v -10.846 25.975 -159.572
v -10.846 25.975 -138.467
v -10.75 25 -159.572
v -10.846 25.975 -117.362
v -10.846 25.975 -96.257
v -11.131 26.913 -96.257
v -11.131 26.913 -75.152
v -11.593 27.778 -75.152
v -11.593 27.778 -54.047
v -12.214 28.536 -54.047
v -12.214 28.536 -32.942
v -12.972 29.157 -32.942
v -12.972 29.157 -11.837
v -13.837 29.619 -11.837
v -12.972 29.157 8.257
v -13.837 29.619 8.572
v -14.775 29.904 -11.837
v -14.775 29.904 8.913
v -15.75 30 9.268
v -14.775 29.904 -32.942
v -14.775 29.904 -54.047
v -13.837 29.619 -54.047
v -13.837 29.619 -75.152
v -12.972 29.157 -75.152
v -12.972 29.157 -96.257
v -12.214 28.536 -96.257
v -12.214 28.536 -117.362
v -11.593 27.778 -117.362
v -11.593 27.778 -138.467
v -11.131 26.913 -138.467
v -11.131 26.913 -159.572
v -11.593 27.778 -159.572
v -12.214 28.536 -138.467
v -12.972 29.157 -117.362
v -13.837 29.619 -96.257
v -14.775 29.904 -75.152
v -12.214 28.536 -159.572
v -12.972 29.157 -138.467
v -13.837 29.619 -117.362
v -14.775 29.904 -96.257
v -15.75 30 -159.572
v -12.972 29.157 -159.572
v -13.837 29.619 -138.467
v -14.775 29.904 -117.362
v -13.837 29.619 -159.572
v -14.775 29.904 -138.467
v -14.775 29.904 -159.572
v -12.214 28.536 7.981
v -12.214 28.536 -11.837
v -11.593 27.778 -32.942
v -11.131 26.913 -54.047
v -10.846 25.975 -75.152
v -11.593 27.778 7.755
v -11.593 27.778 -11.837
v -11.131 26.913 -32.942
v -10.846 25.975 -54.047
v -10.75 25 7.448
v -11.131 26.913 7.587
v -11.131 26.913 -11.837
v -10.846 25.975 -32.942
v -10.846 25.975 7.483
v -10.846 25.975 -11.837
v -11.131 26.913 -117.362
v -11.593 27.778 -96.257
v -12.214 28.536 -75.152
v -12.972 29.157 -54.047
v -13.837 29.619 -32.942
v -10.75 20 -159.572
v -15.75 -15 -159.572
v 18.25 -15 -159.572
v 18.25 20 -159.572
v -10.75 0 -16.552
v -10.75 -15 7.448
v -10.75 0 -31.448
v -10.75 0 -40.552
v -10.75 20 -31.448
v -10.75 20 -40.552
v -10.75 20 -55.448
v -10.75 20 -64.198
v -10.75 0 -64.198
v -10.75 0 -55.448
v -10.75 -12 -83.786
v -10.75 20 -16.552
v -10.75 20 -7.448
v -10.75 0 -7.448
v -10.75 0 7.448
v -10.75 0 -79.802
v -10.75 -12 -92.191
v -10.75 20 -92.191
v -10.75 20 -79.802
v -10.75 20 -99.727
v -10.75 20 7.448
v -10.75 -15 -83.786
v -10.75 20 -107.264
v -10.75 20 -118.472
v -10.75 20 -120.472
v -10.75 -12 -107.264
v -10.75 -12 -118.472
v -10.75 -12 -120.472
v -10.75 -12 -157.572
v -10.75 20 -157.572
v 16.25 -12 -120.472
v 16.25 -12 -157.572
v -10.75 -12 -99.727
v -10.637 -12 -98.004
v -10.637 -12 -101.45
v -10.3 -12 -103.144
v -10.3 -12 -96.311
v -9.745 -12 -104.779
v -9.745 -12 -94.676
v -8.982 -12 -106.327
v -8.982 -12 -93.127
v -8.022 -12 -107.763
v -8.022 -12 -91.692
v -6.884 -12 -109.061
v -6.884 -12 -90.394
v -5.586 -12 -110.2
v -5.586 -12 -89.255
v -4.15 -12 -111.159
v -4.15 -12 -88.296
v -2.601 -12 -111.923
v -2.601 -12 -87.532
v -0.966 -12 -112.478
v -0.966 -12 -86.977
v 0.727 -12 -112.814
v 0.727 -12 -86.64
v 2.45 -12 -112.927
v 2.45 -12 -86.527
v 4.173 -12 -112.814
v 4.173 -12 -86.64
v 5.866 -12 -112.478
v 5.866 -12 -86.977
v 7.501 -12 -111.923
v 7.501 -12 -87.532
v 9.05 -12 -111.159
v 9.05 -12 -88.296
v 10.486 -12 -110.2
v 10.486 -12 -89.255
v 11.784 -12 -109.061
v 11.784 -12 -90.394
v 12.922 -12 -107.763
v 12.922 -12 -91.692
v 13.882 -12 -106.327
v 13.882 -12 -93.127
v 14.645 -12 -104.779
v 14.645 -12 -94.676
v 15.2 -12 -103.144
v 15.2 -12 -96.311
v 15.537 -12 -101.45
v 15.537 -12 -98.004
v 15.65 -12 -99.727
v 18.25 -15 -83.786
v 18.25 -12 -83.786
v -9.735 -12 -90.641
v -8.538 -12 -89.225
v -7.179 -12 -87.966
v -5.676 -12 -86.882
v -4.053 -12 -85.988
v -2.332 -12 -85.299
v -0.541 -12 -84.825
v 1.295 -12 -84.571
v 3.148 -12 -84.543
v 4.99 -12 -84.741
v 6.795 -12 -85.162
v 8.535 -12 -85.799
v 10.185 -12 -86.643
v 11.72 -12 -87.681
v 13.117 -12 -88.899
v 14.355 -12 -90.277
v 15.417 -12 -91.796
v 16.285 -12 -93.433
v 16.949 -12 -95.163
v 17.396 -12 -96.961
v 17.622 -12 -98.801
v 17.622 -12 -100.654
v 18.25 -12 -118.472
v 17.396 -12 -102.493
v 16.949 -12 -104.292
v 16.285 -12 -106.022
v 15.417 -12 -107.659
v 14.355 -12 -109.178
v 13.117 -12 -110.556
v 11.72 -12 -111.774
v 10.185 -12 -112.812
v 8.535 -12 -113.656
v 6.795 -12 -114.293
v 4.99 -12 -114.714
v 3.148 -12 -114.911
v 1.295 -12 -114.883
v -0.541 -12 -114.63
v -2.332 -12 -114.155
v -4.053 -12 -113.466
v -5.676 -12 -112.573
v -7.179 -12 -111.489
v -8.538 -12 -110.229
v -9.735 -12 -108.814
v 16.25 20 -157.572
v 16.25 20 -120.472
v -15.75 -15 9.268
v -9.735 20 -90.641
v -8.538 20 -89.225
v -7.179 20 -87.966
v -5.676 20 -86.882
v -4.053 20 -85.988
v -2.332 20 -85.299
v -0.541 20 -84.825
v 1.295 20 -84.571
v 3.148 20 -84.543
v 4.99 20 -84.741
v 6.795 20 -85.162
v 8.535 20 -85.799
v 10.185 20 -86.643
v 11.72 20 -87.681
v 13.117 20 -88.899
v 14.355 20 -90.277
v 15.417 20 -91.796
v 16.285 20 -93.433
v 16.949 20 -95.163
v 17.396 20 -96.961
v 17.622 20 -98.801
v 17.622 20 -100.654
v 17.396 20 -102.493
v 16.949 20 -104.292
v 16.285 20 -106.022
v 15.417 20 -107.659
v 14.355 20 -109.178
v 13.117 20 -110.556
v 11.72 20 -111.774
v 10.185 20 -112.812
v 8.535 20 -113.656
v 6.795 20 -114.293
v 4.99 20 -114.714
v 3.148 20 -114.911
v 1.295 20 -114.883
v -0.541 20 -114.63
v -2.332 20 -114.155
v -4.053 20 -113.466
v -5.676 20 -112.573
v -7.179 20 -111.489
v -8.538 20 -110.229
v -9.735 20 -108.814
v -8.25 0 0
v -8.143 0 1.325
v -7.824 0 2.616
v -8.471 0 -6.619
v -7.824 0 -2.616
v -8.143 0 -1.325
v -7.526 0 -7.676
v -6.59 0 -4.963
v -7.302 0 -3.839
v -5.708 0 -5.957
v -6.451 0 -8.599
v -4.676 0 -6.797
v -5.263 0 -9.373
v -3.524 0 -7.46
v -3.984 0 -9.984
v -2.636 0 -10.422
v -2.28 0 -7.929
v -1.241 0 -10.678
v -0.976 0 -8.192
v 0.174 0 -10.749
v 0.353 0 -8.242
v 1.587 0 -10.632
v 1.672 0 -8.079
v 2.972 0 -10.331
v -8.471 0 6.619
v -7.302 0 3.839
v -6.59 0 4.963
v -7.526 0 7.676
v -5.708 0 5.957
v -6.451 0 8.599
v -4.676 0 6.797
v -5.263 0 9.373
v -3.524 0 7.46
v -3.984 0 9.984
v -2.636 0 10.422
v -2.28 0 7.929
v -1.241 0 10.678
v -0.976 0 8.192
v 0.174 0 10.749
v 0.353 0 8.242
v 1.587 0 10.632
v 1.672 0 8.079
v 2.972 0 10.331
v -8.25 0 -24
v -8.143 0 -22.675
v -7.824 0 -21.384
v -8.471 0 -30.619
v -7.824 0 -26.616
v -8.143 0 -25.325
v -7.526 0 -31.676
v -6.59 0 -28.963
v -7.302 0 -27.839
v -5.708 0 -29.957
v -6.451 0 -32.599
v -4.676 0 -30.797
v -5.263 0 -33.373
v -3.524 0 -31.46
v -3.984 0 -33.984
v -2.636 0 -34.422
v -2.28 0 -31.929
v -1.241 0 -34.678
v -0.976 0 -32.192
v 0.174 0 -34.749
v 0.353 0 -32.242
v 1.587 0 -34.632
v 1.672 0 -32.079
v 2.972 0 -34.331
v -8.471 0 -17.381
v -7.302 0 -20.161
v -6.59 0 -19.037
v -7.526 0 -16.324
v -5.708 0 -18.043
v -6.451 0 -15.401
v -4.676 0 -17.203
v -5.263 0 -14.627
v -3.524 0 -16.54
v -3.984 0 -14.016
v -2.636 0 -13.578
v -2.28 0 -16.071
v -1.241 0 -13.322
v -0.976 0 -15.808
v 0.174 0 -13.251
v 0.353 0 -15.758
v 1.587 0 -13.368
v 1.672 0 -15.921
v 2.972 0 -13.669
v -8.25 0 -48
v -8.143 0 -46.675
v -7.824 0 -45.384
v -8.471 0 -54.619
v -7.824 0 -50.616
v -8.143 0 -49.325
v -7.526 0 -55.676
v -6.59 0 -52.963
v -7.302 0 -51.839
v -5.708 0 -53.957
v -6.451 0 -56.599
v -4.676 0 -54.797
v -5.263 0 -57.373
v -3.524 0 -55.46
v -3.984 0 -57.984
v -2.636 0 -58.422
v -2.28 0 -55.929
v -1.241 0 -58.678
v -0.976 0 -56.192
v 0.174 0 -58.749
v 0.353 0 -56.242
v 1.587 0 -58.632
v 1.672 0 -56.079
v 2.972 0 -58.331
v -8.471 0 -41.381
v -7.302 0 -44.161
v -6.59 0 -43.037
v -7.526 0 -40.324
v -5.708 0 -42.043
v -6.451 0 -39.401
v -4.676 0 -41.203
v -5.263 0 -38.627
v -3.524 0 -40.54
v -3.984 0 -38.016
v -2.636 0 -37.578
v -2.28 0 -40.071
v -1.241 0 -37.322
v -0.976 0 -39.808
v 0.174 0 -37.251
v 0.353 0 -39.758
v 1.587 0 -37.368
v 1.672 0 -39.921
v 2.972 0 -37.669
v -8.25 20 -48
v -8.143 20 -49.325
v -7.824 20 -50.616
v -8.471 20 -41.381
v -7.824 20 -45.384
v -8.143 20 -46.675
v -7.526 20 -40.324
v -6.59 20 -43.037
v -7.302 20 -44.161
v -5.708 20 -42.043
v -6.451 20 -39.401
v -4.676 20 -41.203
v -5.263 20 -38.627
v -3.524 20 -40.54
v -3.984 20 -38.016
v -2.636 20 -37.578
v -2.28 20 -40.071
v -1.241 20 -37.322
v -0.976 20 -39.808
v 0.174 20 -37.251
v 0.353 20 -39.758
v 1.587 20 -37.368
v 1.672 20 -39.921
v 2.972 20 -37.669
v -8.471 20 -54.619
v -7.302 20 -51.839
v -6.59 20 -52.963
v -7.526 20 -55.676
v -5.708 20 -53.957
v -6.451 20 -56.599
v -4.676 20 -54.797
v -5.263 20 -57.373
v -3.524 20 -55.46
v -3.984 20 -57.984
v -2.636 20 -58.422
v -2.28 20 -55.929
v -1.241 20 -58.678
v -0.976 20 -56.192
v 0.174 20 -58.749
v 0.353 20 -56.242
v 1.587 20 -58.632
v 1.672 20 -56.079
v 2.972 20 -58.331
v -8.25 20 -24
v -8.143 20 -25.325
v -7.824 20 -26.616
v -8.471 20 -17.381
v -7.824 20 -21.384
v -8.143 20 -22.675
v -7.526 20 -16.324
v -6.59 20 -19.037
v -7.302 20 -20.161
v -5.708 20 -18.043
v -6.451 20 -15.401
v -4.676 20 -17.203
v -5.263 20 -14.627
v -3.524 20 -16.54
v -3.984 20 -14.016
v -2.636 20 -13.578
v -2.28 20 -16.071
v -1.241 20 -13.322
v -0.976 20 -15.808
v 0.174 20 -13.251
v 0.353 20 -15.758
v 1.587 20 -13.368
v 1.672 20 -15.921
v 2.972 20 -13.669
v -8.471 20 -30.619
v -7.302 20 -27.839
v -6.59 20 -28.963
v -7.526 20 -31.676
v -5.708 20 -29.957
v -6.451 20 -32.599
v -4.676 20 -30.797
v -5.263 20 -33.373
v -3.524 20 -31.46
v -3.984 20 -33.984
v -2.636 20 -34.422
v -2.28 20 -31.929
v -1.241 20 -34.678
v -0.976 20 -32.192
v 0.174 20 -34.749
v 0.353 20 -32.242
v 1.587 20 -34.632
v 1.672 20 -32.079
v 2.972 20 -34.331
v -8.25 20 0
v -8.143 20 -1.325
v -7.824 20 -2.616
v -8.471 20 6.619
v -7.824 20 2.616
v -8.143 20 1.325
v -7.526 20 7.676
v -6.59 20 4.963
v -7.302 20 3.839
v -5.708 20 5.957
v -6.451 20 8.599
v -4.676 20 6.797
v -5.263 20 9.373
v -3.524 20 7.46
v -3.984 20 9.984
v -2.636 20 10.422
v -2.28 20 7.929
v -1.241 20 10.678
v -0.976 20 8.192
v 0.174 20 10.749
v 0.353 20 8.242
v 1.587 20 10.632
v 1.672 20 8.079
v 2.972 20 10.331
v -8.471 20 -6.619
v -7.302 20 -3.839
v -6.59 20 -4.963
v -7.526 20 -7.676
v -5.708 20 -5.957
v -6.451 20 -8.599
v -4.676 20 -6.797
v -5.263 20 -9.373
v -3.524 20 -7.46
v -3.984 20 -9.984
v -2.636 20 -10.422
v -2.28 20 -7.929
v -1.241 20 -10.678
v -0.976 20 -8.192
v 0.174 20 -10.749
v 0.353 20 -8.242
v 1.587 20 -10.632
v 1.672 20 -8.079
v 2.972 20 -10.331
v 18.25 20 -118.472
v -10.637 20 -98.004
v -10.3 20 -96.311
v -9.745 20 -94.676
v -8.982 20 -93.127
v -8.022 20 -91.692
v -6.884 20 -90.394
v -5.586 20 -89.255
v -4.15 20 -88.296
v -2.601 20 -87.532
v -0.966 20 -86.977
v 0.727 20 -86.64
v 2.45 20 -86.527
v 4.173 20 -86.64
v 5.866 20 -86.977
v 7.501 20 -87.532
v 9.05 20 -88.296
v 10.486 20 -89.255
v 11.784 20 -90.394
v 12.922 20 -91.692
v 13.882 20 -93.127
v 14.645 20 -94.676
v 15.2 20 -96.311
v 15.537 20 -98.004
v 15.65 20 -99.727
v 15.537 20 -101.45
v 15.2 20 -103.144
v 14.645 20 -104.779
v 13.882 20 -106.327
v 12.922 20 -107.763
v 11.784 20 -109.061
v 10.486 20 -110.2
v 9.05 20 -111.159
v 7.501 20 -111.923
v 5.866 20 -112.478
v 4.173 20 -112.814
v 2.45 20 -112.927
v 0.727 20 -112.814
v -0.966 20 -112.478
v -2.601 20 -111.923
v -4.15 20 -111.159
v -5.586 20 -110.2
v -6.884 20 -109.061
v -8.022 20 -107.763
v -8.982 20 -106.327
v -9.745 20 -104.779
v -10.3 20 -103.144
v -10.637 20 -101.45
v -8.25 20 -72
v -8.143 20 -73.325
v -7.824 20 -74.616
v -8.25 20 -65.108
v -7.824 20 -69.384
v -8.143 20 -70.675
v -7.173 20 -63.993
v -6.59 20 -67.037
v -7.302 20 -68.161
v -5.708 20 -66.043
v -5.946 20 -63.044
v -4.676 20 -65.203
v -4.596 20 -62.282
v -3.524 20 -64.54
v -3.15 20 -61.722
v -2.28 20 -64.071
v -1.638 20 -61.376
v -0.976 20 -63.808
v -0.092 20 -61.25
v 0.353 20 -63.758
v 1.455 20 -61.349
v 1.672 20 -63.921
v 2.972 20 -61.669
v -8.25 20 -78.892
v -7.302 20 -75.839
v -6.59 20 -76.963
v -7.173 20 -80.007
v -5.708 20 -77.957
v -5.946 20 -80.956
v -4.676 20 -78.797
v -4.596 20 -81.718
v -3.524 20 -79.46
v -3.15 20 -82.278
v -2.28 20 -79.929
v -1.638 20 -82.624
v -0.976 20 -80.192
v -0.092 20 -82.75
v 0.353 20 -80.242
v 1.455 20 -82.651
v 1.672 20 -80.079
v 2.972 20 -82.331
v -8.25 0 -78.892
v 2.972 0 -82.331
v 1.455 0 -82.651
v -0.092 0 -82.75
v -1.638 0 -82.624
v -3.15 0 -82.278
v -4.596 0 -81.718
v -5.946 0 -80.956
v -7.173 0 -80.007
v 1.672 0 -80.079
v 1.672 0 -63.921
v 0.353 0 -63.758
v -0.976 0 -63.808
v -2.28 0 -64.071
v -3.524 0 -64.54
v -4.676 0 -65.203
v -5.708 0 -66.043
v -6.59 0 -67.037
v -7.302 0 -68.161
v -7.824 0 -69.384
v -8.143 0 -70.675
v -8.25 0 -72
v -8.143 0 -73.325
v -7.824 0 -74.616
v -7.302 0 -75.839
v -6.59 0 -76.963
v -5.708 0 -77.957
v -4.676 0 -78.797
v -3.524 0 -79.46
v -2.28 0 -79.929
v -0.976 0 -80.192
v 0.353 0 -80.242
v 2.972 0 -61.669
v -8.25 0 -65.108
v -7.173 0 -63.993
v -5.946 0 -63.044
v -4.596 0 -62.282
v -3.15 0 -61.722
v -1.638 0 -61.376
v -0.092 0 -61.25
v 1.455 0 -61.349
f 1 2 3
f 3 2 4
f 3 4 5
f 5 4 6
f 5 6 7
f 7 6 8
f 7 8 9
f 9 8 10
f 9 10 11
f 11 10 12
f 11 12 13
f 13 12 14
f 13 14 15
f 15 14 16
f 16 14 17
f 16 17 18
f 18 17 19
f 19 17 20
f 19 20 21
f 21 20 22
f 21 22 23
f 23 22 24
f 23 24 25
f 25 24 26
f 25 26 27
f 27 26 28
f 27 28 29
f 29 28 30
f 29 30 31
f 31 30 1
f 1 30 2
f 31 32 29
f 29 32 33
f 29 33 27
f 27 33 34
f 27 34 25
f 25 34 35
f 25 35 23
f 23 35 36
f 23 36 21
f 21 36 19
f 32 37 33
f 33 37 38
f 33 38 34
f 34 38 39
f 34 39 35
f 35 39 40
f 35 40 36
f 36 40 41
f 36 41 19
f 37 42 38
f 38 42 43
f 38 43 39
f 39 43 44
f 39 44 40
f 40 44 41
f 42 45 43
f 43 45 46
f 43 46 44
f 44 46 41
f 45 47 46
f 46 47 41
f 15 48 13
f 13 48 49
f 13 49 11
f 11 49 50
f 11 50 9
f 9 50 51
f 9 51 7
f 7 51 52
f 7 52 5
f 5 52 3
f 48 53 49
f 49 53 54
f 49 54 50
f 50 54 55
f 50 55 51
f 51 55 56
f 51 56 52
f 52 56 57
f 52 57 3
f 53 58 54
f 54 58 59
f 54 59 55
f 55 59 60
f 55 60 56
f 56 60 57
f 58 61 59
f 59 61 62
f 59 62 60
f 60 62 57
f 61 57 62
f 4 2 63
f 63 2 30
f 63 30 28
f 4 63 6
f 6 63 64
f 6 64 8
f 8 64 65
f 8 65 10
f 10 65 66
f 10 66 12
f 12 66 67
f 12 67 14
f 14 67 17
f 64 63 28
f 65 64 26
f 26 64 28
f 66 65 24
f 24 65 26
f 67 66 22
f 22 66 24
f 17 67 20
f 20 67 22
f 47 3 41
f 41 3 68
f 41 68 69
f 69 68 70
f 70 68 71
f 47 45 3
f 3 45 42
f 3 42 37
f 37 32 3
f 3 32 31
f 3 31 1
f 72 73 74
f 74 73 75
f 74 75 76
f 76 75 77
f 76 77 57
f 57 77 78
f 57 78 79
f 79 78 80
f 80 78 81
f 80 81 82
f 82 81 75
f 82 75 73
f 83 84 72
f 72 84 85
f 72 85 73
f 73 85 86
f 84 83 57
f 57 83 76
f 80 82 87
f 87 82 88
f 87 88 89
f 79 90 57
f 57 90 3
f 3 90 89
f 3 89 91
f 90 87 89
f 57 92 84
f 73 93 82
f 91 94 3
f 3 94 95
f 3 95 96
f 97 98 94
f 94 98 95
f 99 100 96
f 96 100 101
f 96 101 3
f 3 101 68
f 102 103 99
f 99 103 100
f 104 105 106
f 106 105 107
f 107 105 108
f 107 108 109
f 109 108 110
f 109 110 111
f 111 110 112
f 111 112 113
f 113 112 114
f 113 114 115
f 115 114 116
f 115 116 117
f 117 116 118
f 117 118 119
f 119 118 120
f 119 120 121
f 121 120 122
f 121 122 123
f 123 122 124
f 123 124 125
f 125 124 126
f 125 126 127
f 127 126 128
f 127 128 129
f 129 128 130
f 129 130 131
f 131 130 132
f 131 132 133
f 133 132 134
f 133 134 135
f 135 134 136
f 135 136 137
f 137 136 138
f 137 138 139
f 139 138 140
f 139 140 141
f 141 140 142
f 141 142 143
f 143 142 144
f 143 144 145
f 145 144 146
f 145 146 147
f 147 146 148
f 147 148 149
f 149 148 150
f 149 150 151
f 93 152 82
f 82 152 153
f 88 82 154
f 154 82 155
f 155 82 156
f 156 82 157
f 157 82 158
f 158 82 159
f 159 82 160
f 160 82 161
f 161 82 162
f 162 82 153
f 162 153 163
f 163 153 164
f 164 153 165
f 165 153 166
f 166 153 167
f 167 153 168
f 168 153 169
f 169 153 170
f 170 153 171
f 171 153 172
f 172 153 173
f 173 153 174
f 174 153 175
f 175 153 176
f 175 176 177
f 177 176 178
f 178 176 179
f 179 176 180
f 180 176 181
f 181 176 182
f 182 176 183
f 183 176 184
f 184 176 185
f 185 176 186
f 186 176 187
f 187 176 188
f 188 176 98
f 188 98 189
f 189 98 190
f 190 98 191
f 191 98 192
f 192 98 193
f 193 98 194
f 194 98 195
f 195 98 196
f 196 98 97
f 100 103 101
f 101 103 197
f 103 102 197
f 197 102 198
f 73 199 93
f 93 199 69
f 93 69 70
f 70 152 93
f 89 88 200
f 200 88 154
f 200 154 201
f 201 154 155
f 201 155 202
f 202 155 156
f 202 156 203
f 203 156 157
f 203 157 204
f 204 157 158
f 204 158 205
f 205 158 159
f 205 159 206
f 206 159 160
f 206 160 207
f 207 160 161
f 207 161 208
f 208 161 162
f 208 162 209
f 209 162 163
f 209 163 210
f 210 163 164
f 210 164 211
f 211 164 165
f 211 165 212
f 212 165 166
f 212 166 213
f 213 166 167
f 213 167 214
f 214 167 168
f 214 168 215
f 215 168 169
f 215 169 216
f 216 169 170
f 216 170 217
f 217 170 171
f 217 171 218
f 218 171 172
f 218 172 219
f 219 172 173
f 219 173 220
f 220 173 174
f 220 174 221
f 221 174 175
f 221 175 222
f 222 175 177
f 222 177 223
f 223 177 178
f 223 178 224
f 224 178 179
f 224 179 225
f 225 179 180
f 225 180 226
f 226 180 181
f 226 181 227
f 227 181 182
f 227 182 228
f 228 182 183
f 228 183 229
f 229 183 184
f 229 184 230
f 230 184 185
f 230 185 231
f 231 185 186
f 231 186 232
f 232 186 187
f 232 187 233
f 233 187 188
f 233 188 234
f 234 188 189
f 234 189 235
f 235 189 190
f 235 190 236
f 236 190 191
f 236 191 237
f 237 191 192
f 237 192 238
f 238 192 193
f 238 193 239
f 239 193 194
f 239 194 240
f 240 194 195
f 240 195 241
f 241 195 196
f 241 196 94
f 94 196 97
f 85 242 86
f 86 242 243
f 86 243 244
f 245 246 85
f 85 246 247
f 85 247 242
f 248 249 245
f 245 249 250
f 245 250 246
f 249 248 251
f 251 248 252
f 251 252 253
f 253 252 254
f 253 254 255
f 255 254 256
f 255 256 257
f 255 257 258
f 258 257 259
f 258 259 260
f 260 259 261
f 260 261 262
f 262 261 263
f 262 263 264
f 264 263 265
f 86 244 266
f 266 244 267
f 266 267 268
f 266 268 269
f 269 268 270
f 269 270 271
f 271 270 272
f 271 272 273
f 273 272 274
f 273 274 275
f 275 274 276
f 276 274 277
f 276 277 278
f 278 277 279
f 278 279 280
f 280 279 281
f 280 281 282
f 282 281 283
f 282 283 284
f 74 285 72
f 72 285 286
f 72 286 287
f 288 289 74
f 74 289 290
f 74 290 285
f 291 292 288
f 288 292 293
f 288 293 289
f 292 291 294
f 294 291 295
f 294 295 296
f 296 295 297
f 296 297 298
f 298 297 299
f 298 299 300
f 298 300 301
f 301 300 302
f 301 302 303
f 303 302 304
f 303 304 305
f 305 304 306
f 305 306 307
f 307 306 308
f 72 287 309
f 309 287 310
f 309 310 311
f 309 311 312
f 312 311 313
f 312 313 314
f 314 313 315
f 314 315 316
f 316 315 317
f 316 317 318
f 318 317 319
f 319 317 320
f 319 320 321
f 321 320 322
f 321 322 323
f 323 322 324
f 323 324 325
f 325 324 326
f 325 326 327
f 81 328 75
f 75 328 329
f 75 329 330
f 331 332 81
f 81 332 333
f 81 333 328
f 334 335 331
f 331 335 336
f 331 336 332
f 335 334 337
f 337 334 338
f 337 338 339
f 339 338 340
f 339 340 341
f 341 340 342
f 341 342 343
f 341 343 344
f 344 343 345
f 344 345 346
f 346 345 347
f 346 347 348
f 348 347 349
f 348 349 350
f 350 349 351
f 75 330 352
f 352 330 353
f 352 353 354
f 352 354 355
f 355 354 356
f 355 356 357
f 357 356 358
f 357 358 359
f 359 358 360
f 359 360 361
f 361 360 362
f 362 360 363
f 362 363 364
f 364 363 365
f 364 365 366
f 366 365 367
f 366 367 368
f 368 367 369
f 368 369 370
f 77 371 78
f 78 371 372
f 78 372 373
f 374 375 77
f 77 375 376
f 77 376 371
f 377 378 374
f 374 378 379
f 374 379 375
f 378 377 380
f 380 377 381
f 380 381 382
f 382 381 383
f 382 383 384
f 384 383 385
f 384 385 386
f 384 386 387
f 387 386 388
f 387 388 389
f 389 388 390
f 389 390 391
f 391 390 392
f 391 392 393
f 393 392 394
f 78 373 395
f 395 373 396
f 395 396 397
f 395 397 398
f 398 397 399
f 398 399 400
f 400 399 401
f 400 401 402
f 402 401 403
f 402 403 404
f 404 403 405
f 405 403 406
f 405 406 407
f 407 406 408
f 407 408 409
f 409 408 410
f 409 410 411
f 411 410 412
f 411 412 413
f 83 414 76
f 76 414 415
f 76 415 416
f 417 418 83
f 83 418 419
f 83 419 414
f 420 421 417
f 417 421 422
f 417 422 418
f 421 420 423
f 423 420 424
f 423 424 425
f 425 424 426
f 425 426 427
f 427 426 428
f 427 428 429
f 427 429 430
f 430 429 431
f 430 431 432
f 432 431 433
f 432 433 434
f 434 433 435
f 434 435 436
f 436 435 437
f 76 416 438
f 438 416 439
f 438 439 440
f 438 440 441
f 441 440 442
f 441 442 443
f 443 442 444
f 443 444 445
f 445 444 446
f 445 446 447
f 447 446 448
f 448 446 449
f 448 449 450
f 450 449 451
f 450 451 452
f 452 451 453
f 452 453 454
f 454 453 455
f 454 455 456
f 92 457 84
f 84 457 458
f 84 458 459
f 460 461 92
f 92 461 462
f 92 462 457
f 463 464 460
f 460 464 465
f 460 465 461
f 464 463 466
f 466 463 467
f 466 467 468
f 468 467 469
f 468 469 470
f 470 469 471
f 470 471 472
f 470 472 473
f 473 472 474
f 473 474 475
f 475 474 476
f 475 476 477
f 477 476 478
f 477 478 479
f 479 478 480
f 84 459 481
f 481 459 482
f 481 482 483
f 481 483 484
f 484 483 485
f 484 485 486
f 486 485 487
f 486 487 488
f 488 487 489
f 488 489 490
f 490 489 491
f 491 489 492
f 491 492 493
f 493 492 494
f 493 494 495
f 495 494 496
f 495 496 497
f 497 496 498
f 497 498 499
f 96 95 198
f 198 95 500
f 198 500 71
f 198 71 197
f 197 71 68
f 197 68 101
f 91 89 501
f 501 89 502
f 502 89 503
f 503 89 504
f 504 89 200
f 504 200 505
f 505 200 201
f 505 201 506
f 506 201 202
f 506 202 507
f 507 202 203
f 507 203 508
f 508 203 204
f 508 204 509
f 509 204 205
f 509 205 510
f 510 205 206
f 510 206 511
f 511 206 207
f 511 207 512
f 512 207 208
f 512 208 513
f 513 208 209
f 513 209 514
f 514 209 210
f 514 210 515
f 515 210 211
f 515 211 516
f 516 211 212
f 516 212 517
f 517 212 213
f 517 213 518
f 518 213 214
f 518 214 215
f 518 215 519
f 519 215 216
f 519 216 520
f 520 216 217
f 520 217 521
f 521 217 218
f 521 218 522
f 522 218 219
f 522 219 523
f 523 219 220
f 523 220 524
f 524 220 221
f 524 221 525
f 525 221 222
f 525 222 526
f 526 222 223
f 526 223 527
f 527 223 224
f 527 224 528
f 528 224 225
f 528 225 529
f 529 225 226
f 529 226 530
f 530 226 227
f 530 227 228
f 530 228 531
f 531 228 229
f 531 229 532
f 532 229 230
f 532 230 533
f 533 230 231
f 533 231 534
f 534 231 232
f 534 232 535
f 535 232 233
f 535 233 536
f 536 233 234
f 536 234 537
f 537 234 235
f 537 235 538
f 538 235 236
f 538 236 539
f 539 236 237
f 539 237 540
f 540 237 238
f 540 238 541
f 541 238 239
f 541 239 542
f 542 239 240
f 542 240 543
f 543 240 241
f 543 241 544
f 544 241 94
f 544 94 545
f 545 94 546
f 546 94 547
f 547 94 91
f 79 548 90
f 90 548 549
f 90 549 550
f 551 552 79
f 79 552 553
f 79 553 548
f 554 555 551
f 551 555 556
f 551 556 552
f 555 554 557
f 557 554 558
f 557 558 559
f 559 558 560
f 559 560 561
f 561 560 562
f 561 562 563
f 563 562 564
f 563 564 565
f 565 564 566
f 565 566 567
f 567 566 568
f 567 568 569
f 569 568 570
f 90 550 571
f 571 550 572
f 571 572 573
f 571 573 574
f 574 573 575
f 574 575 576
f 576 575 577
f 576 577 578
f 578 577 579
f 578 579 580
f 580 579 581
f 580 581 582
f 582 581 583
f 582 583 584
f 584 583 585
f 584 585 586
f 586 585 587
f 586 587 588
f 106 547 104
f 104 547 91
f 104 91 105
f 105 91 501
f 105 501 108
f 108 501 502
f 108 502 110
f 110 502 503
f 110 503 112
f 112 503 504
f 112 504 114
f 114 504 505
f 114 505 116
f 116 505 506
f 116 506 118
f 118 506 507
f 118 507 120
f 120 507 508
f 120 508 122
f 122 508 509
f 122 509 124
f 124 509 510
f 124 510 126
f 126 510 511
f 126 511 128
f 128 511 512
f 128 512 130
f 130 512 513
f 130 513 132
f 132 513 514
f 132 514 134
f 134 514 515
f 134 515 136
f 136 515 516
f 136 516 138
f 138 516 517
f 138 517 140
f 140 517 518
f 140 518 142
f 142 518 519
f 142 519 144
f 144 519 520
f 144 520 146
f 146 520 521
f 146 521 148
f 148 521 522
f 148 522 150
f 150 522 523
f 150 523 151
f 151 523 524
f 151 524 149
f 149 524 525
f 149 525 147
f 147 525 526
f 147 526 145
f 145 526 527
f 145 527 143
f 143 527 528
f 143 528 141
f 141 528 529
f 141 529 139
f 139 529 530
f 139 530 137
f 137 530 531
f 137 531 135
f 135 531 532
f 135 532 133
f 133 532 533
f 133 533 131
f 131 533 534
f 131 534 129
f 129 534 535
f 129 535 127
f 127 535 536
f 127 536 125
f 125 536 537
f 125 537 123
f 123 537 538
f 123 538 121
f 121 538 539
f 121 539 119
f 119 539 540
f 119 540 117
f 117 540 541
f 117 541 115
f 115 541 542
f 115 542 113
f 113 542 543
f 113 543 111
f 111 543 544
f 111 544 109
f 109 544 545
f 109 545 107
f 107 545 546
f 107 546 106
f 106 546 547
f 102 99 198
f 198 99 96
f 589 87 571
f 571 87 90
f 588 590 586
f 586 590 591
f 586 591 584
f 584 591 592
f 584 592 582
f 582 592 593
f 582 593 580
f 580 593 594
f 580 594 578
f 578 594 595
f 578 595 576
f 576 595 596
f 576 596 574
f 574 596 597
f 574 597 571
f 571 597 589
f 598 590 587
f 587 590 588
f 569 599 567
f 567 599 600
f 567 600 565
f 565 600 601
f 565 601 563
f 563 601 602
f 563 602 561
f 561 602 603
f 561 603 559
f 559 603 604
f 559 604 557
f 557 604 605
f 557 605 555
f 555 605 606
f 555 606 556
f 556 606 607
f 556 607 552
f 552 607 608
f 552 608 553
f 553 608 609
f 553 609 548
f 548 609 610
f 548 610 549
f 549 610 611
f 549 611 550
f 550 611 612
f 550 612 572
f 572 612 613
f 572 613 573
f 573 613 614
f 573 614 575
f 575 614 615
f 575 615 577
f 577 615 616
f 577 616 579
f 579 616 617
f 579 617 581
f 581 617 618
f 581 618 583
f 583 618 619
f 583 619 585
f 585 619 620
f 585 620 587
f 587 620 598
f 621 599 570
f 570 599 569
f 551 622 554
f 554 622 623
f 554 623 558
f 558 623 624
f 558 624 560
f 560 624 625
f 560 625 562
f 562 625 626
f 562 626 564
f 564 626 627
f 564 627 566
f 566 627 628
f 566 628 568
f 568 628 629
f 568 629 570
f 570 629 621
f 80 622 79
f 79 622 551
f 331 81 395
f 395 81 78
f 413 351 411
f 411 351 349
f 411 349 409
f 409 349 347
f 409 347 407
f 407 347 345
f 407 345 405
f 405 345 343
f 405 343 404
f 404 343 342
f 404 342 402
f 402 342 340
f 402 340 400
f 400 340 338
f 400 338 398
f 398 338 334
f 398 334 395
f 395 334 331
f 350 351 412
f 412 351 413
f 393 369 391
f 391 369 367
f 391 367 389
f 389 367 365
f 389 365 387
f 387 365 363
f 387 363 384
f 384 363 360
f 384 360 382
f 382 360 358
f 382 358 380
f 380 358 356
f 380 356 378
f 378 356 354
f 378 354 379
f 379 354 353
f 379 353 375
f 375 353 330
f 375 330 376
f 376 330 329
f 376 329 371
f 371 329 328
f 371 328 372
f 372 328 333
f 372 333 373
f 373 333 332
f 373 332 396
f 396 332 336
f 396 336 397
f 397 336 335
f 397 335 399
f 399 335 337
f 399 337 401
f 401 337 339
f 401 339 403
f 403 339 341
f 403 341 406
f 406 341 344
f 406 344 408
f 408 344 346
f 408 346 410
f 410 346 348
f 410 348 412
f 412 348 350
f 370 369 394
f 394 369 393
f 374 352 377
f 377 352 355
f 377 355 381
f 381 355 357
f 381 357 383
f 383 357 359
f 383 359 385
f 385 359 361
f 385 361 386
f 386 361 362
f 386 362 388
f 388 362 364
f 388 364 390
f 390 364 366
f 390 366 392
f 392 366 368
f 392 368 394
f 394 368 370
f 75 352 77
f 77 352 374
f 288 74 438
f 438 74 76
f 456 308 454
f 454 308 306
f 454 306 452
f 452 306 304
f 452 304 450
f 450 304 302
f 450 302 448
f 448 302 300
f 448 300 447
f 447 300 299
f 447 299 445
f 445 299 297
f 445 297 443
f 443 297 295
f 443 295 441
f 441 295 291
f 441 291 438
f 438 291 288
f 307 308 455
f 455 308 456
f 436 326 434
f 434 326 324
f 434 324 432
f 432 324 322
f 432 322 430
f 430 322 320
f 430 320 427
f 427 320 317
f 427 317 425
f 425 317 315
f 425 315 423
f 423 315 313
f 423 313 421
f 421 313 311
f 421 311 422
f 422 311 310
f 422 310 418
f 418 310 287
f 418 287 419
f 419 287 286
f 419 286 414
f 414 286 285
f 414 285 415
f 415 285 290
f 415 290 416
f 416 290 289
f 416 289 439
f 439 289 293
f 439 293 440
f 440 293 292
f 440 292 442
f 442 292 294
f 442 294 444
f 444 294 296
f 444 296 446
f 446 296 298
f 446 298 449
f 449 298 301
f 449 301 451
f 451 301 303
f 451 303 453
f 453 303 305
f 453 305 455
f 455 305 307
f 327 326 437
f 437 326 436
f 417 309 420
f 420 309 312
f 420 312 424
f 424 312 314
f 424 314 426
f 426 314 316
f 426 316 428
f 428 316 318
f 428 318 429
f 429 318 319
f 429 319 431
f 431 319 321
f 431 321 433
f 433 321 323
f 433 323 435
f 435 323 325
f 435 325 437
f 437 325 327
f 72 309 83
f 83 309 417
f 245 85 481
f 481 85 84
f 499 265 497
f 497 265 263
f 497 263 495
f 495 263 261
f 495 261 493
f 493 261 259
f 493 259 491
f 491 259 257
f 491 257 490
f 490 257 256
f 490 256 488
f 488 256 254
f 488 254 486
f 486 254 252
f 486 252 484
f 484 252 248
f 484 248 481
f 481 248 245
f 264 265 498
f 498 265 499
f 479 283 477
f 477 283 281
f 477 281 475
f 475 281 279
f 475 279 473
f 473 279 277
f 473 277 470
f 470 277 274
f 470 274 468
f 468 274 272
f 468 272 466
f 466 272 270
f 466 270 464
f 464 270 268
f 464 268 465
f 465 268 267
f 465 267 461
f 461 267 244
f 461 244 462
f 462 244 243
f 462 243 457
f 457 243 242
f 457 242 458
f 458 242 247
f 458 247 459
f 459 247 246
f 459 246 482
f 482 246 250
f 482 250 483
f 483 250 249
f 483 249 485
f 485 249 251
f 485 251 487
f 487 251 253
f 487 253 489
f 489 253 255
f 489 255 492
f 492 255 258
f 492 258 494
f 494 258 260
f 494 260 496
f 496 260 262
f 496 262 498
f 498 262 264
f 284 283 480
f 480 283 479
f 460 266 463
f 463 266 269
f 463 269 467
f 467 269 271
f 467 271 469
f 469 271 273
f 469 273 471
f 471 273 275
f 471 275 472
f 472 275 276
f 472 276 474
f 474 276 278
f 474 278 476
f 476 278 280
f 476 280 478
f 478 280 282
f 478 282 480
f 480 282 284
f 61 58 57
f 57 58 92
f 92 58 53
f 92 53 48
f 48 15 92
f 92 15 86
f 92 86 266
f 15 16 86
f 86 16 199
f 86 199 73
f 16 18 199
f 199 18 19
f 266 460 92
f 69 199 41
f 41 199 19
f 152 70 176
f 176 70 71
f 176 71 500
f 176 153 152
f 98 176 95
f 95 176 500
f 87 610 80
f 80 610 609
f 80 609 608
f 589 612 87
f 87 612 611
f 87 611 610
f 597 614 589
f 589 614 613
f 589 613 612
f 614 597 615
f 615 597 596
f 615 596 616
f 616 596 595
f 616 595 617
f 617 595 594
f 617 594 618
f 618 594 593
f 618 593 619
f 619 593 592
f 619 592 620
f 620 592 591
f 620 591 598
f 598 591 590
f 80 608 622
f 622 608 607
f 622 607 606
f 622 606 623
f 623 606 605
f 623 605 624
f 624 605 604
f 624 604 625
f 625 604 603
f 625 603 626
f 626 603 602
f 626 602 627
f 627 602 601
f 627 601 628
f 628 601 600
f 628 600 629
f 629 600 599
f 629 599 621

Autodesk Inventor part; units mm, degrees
ref_plane "YZ Plane" through (0, 0, 0) normal (1, 0, 0) x (0, 1, 0)
ref_plane "XZ Plane" through (0, 0, 0) normal (0, 1, 0) x (-1, 0, 0)
ref_plane "XY Plane" through (0, 0, 0) normal (0, 0, 1) x (1, 0, 0)
sketch "Sketch1" plane through (0, 0, 0) normal (0, 1, 0) x (-1, 0, 0)
  arc A0 (-1.6722, -8.0788) -> (-1.6722, 8.0788) centre (0, 0) ccw
  arc A1 (-2.9725, -10.3309) -> (-2.9725, 10.3309) centre (0, 0) ccw
  line L0 (-1.6722, 8.0788) -> (-2.9725, 10.3309)
  line L1 (-1.6722, 8.0788) -> (0.9283, 8.0788) construction
  line L2 (-1.6722, -8.0788) -> (-2.9725, -10.3309)
  line L3 (0, 0) -> (0, -2.9706)
  arc A2 (-1.6722, -32.0788) -> (-1.6722, -15.9212) centre (0, -24) ccw
  arc A3 (-2.9725, -34.3309) -> (-2.9725, -13.6691) centre (0, -24) ccw
  line L4 (-1.6722, -15.9212) -> (-2.9725, -13.6691)
  line L5 (-1.6722, -15.9212) -> (0.9283, -15.9212) construction
  line L6 (-1.6722, -32.0788) -> (-2.9725, -34.3309)
  line L7 (0, -24) -> (0, -26.9706)
  arc A4 (-1.6722, -56.0788) -> (-1.6722, -39.9212) centre (0, -48) ccw
  arc A5 (-2.9725, -58.3309) -> (-2.9725, -37.6691) centre (0, -48) ccw
  line L8 (-1.6722, -39.9212) -> (-2.9725, -37.6691)
  line L9 (-1.6722, -39.9212) -> (0.9283, -39.9212) construction
  line L10 (-1.6722, -56.0788) -> (-2.9725, -58.3309)
  line L11 (0, -48) -> (0, -50.9706)
  arc A6 (-1.6722, -80.0788) -> (-1.6722, -63.9212) centre (0, -72) ccw
  arc A7 (-2.9725, -82.3309) -> (-2.9725, -61.6691) centre (0, -72) ccw
  line L12 (-1.6722, -63.9212) -> (-2.9725, -61.6691)
  line L13 (-1.6722, -63.9212) -> (0.9283, -63.9212) construction
  line L14 (-1.6722, -80.0788) -> (-2.9725, -82.3309)
  line L15 (0, -72) -> (0, -74.9706)
  line L16 (10.75, -99.7274) -> (-2.45, -99.7274) construction
  circle A8 centre (-2.45, -99.7274) radius 13.2 construction
  arc A9 (10.75, -92.1908) -> (10.75, -107.264) centre (-2.45, -99.7274) ccw construction
  circle A10 centre (-2.45, -99.7274) radius 13.2
  arc A11 (10.75, -92.1908) -> (10.75, -107.264) centre (-2.45, -99.7274) ccw
  line L17 (10.75, -120.472) -> (-16.25, -120.472)
  line L18 (-16.25, -120.472) -> (-16.25, -157.572)
  line L19 (-16.25, -157.572) -> (10.75, -157.572)
  line L20 (10.75, -157.572) -> (10.75, -120.472)
  line L21 (-18.25, -159.572) -> (-18.25, -118.472)
  line L22 (-18.25, -118.472) -> (10.75, -118.472)
  line L23 (12.75, -159.572) -> (-18.25, -159.572)
  line L24 (10.75, 0) -> (15.75, 0) construction
  line L25 (8.4709, 6.6186) -> (15.75, 9.268) construction
  line L26 (15.75, 9.268) -> (15.75, -159.572) construction
  line L27 (15.75, -159.572) -> (12.75, -159.572) construction
  line L28 (10.75, -118.472) -> (10.75, -107.264) construction
  line L29 (10.75, -118.472) -> (10.75, -107.264)
  line L30 (10.75, -92.1908) -> (10.75, -79.8019)
  line L31 (8.4709, 6.6186) -> (15.75, 9.268)
  line L32 (15.75, 9.268) -> (15.75, -159.572)
  line L33 (15.75, -159.572) -> (12.75, -159.572)
  line L34 (10.75, -107.264) -> (10.75, -118.472) construction
  line L35 (10.75, -120.472) -> (10.75, -154.7804) construction
  line L36 (8.4709, -6.6186) -> (10.75, -7.4481)
  line L37 (8.4709, -6.6186) -> (10.8963, -6.6186) construction
  line L38 (8.4709, -17.3814) -> (10.75, -16.5519)
  line L39 (8.4709, -30.6186) -> (10.75, -31.4481)
  line L40 (8.4709, -41.3814) -> (10.75, -40.5519)
  line L41 (8.4709, -54.6186) -> (10.75, -55.4481)
  line L42 (8.25, -65.108) -> (10.75, -64.1981)
  line L43 (8.25, -78.892) -> (10.75, -79.8019)
  line L44 (10.75, -16.5519) -> (10.75, -7.4481)
  line L45 (10.75, -7.4481) -> (10.75, -16.5519) construction
  line L46 (10.75, -64.1981) -> (10.75, -55.4481)
  line L47 (10.75, -40.5519) -> (10.75, -31.4481)
  line L48 (10.75, -31.4481) -> (10.75, -40.5519) construction
  line L49 (10.75, -55.4481) -> (10.75, -64.1981) construction
  line L50 (10.75, -79.8019) -> (10.75, -92.1908) construction
  dimension "d1" = 2.5
  dimension "d5" = 24
  dimension "d19" = 20
extrude "Extrusion1" add sketch "Sketch1" along normal blind 20
sketch "Sketch2" plane through (0, 20, 0) normal (0, 1, 0) x (1, 0, 0)
  arc A0 (-10.75, 92.1908) -> (-10.75, 107.264) centre (2.45, 99.7274) ccw construction
  line L0 (-10.75, 107.264) -> (-10.75, 118.472) construction
  line L1 (-10.75, 118.472) -> (18.25, 118.472) construction
  line L2 (18.25, 118.472) -> (18.25, 159.572) construction
  line L3 (18.25, 159.572) -> (-15.75, 159.572) construction
  line L4 (-15.75, 159.572) -> (-15.75, -9.268) construction
  line L5 (-15.75, -9.268) -> (-8.4709, -6.6186) construction
  arc A1 (-8.4709, -6.6186) -> (2.9725, -10.3309) centre (0, 0) ccw construction
  line L6 (2.9725, -10.3309) -> (1.6722, -8.0788) construction
  arc A2 (1.6722, 8.0788) -> (1.6722, -8.0788) centre (0, 0) ccw construction
  line L7 (1.6722, 8.0788) -> (2.9725, 10.3309) construction
  arc A3 (2.9725, 10.3309) -> (-8.4709, 6.6186) centre (0, 0) ccw construction
  line L8 (-8.4709, 6.6186) -> (-10.75, 7.4481) construction
  line L9 (-10.75, 7.4481) -> (-10.75, 16.5519) construction
  line L10 (-10.75, 16.5519) -> (-8.4709, 17.3814) construction
  arc A4 (-8.4709, 17.3814) -> (2.9725, 13.6691) centre (0, 24) ccw construction
  line L11 (2.9725, 13.6691) -> (1.6722, 15.9212) construction
  arc A5 (1.6722, 32.0788) -> (1.6722, 15.9212) centre (0, 24) ccw construction
  line L12 (1.6722, 32.0788) -> (2.9725, 34.3309) construction
  arc A6 (2.9725, 34.3309) -> (-8.4709, 30.6186) centre (0, 24) ccw construction
  line L13 (-8.4709, 30.6186) -> (-10.75, 31.4481) construction
  line L14 (-10.75, 31.4481) -> (-10.75, 40.5519) construction
  line L15 (-10.75, 40.5519) -> (-8.4709, 41.3814) construction
  arc A7 (-8.4709, 41.3814) -> (2.9725, 37.6691) centre (0, 48) ccw construction
  line L16 (2.9725, 37.6691) -> (1.6722, 39.9212) construction
  arc A8 (1.6722, 56.0788) -> (1.6722, 39.9212) centre (0, 48) ccw construction
  line L17 (1.6722, 56.0788) -> (2.9725, 58.3309) construction
  arc A9 (2.9725, 58.3309) -> (-8.4709, 54.6186) centre (0, 48) ccw construction
  line L18 (-8.4709, 54.6186) -> (-10.75, 55.4481) construction
  line L19 (-10.75, 55.4481) -> (-10.75, 64.1981) construction
  line L20 (-10.75, 64.1981) -> (-8.25, 65.108) construction
  arc A10 (-8.25, 65.108) -> (2.9725, 61.6691) centre (0, 72) ccw construction
  line L21 (2.9725, 61.6691) -> (1.6722, 63.9212) construction
  arc A11 (1.6722, 80.0788) -> (1.6722, 63.9212) centre (0, 72) ccw construction
  line L22 (1.6722, 80.0788) -> (2.9725, 82.3309) construction
  arc A12 (2.9725, 82.3309) -> (-8.25, 78.892) centre (0, 72) ccw construction
  line L23 (-8.25, 78.892) -> (-10.75, 79.8019) construction
  line L24 (-10.75, 79.8019) -> (-10.75, 92.1908) construction
  line L25 (-10.75, 120.472) -> (-10.75, 157.572) construction
  line L26 (-10.75, 157.572) -> (16.25, 157.572) construction
  line L27 (16.25, 157.572) -> (16.25, 120.472) construction
  line L28 (16.25, 120.472) -> (-10.75, 120.472) construction
  circle A13 centre (2.45, 99.7274) radius 13.2 construction
  line L29 (-15.75, -9.268) -> (-10.75, -9.268)
  line L30 (-10.75, -9.268) -> (-10.75, 159.572)
  line L31 (-10.75, 159.572) -> (-15.75, 159.572)
  line L32 (-15.75, 159.572) -> (-15.75, -9.268)
  line L33 (-15.75, -9.268) -> (-8.4709, -6.6186) projected
  line L34 (-10.75, -7.4481) -> (-15.75, -9.268)
extrude "Extrusion2" add sketch "Sketch2" along normal blind 10 contours L32 L31 L30 L33
sketch "Sketch3" plane through (0, 0, 0) normal (0, -1, 0) x (1, 0, 0)
  arc A0 (-10.75, -107.264) -> (-10.75, -92.1908) centre (2.45, -99.7274) ccw projected
  line L0 (-10.75, -79.8019) -> (-10.75, -92.1908) projected
  line L1 (-8.25, -78.892) -> (-10.75, -79.8019) projected
  arc A1 (-8.25, -78.892) -> (2.9725, -82.3309) centre (0, -72) ccw projected
  line L2 (1.6722, -80.0788) -> (2.9725, -82.3309) projected
  arc A2 (1.6722, -63.9212) -> (1.6722, -80.0788) centre (0, -72) ccw projected
  line L3 (2.9725, -61.6691) -> (1.6722, -63.9212) projected
  arc A3 (2.9725, -61.6691) -> (-8.25, -65.108) centre (0, -72) ccw projected
  line L4 (-10.75, -64.1981) -> (-8.25, -65.108) projected
  line L5 (-10.75, -55.4481) -> (-10.75, -64.1981) projected
  line L6 (-8.4709, -54.6186) -> (-10.75, -55.4481) projected
  arc A4 (-8.4709, -54.6186) -> (2.9725, -58.3309) centre (0, -48) ccw projected
  line L7 (1.6722, -56.0788) -> (2.9725, -58.3309) projected
  arc A5 (1.6722, -39.9212) -> (1.6722, -56.0788) centre (0, -48) ccw projected
  line L8 (2.9725, -37.6691) -> (1.6722, -39.9212) projected
  arc A6 (2.9725, -37.6691) -> (-8.4709, -41.3814) centre (0, -48) ccw projected
  line L9 (-10.75, -40.5519) -> (-8.4709, -41.3814) projected
  line L10 (-10.75, -31.4481) -> (-10.75, -40.5519) projected
  line L11 (-8.4709, -30.6186) -> (-10.75, -31.4481) projected
  arc A7 (-8.4709, -30.6186) -> (2.9725, -34.3309) centre (0, -24) ccw projected
  line L12 (1.6722, -32.0788) -> (2.9725, -34.3309) projected
  arc A8 (1.6722, -15.9212) -> (1.6722, -32.0788) centre (0, -24) ccw projected
  line L13 (2.9725, -13.6691) -> (1.6722, -15.9212) projected
  arc A9 (2.9725, -13.6691) -> (-8.4709, -17.3814) centre (0, -24) ccw projected
  line L14 (-10.75, -16.5519) -> (-8.4709, -17.3814) projected
  line L15 (-10.75, -7.4481) -> (-10.75, -16.5519) projected
  line L16 (-8.4709, -6.6186) -> (-10.75, -7.4481) projected
  arc A10 (-8.4709, -6.6186) -> (2.9725, -10.3309) centre (0, 0) ccw projected
  line L17 (1.6722, -8.0788) -> (2.9725, -10.3309) projected
  arc A11 (1.6722, 8.0788) -> (1.6722, -8.0788) centre (0, 0) ccw projected
  line L18 (2.9725, 10.3309) -> (1.6722, 8.0788) projected
  arc A12 (2.9725, 10.3309) -> (-8.4709, 6.6186) centre (0, 0) ccw projected
  line L19 (-15.75, 9.268) -> (-8.4709, 6.6186) projected
  line L20 (-15.75, -159.572) -> (-15.75, 9.268) projected
  line L21 (18.25, -159.572) -> (-15.75, -159.572) projected
  line L22 (18.25, -118.472) -> (18.25, -159.572) projected
  line L23 (-10.75, -118.472) -> (18.25, -118.472) projected
  line L24 (-10.75, -107.264) -> (-10.75, -118.472) projected
  line L25 (-10.75, -120.472) -> (-10.75, -157.572) projected
  line L26 (16.25, -120.472) -> (-10.75, -120.472) projected
  line L27 (16.25, -157.572) -> (16.25, -120.472) projected
  line L28 (-10.75, -157.572) -> (16.25, -157.572) projected
  circle A13 centre (2.45, -99.7274) radius 13.2 projected
  line L29 (2.45, -84.5274) -> (-15.75, -84.5274)
  arc A14 (-10.75, -107.264) -> (-10.75, -92.1908) centre (2.45, -99.7274) ccw projected
  line L30 (-15.75, -84.5274) -> (-10.75, -84.5274)
  line L31 (-10.75, -84.5274) -> (-10.75, -159.572)
  line L32 (-10.75, -159.572) -> (-15.75, -159.572)
  line L33 (-15.75, -159.572) -> (-15.75, -84.5274)
  line L34 (-15.75, -84.5274) -> (-10.75, -84.5274)
  line L35 (-10.75, -84.5274) -> (-10.75, -7.4481)
  line L36 (-10.75, -7.4481) -> (-15.75, -7.4481)
  line L37 (-15.75, -7.4481) -> (-15.75, -84.5274)
  line L38 (-15.75, -159.572) -> (-15.75, 9.268) projected
  line L39 (-10.75, -7.4481) -> (-15.75, -7.4481)
  line L40 (-15.75, -7.4481) -> (-15.75, 9.268)
  line L41 (-15.75, 9.268) -> (-10.75, 9.268)
  line L42 (-10.75, 9.268) -> (-10.75, -7.4481)
  point P0 (-10.75, 7.4481)
extrude "Extrusion3" add sketch "Sketch3" along normal blind 15 contours L31 A0 | L24 L31 L25 L21 L20 L29 L0 | L23 L22 L21 L31 L28 L27 L26 | L29 L20 L36 L15 L35 L10 L5 L0 | L20 L19 L42 L36
sketch "Sketch4" plane through (0, -15, 0) normal (0, -1, 0) x (1, 0, 0)
  line L0 (-10.75, 7.4481) -> (-15.75, 9.268) construction
  line L1 (-15.75, 9.268) -> (-15.75, -159.572) construction
  line L2 (-15.75, -159.572) -> (18.25, -159.572) construction
  line L3 (18.25, -159.572) -> (18.25, -118.472) construction
  line L4 (18.25, -118.472) -> (-10.75, -118.472) construction
  line L5 (-10.75, -118.472) -> (-10.75, -107.264) construction
  arc A0 (-10.75, -107.264) -> (-10.75, -92.1908) centre (2.45, -99.7274) ccw construction
  line L6 (-10.75, -92.1908) -> (-10.75, 7.4481) construction
  circle A1 centre (2.45, -99.7274) radius 13.2 construction
  line L7 (-10.75, -157.572) -> (-10.75, -120.472) construction
  line L8 (-10.75, -120.472) -> (16.25, -120.472) construction
  line L9 (16.25, -120.472) -> (16.25, -157.572) construction
  line L10 (16.25, -157.572) -> (-10.75, -157.572) construction
  line L11 (-10.75, 7.4481) -> (-10.75, -7.4481) construction
  line L12 (-8.4709, -6.6186) -> (-10.75, -7.4481) construction
  arc A2 (-8.4709, -6.6186) -> (2.9725, -10.3309) centre (0, 0) ccw construction
  line L13 (1.6722, -8.0788) -> (2.9725, -10.3309) construction
  arc A3 (1.6722, 8.0788) -> (1.6722, -8.0788) centre (0, 0) ccw construction
  line L14 (2.9725, 10.3309) -> (1.6722, 8.0788) construction
  arc A4 (2.9725, 10.3309) -> (-8.4709, 6.6186) centre (0, 0) ccw construction
  line L15 (-10.75, 7.4481) -> (-8.4709, 6.6186) construction
  line L16 (-10.75, -16.5519) -> (-10.75, -31.4481) construction
  line L17 (-8.4709, -30.6186) -> (-10.75, -31.4481) construction
  arc A5 (-8.4709, -30.6186) -> (2.9725, -34.3309) centre (0, -24) ccw construction
  line L18 (1.6722, -32.0788) -> (2.9725, -34.3309) construction
  arc A6 (1.6722, -15.9212) -> (1.6722, -32.0788) centre (0, -24) ccw construction
  line L19 (2.9725, -13.6691) -> (1.6722, -15.9212) construction
  arc A7 (2.9725, -13.6691) -> (-8.4709, -17.3814) centre (0, -24) ccw construction
  line L20 (-10.75, -16.5519) -> (-8.4709, -17.3814) construction
  line L21 (-10.75, -40.5519) -> (-10.75, -55.4481) construction
  line L22 (-8.4709, -54.6186) -> (-10.75, -55.4481) construction
  arc A8 (-8.4709, -54.6186) -> (2.9725, -58.3309) centre (0, -48) ccw construction
  line L23 (1.6722, -56.0788) -> (2.9725, -58.3309) construction
  arc A9 (1.6722, -39.9212) -> (1.6722, -56.0788) centre (0, -48) ccw construction
  line L24 (2.9725, -37.6691) -> (1.6722, -39.9212) construction
  arc A10 (2.9725, -37.6691) -> (-8.4709, -41.3814) centre (0, -48) ccw construction
  line L25 (-10.75, -40.5519) -> (-8.4709, -41.3814) construction
  arc A11 (1.6722, -63.9212) -> (1.6722, -80.0788) centre (0, -72) ccw construction
  line L26 (-10.75, -64.1981) -> (-10.75, -79.8019) construction
  line L27 (-8.25, -78.892) -> (-10.75, -79.8019) construction
  arc A12 (-8.25, -78.892) -> (2.9725, -82.3309) centre (0, -72) ccw construction
  line L28 (1.6722, -80.0788) -> (2.9725, -82.3309) construction
  arc A13 (1.6722, -63.9212) -> (1.6722, -80.0788) centre (0, -72) ccw construction
  line L29 (2.9725, -61.6691) -> (1.6722, -63.9212) construction
  arc A14 (2.9725, -61.6691) -> (-8.25, -65.108) centre (0, -72) ccw construction
  line L30 (-10.75, -64.1981) -> (-8.25, -65.108) construction
  line L31 (-15.75, 9.268) -> (18.25, 9.268)
  line L32 (18.25, 9.268) -> (18.25, -159.572)
  line L33 (-15.75, -159.572) -> (18.25, -159.572)
  line L34 (-15.75, -159.572) -> (-15.75, 9.268)
  circle A15 centre (0, 0) radius 8.25
  circle A16 centre (0, -24) radius 8.25
  circle A17 centre (0, -48) radius 8.25
  circle A18 centre (0, -72) radius 8.25
  line L35 (-15.75, -83.7856) -> (18.25, -83.7856)
  point P0 (2.45, -84.5274)
extrude "Extrusion4" add sketch "Sketch4" against normal blind 3 contours L35 L32 L33 L34
fillet "Fillet1" radius 5 1 edges at (-10.75, 30, -76.0619)
properties part number "Block-1"
